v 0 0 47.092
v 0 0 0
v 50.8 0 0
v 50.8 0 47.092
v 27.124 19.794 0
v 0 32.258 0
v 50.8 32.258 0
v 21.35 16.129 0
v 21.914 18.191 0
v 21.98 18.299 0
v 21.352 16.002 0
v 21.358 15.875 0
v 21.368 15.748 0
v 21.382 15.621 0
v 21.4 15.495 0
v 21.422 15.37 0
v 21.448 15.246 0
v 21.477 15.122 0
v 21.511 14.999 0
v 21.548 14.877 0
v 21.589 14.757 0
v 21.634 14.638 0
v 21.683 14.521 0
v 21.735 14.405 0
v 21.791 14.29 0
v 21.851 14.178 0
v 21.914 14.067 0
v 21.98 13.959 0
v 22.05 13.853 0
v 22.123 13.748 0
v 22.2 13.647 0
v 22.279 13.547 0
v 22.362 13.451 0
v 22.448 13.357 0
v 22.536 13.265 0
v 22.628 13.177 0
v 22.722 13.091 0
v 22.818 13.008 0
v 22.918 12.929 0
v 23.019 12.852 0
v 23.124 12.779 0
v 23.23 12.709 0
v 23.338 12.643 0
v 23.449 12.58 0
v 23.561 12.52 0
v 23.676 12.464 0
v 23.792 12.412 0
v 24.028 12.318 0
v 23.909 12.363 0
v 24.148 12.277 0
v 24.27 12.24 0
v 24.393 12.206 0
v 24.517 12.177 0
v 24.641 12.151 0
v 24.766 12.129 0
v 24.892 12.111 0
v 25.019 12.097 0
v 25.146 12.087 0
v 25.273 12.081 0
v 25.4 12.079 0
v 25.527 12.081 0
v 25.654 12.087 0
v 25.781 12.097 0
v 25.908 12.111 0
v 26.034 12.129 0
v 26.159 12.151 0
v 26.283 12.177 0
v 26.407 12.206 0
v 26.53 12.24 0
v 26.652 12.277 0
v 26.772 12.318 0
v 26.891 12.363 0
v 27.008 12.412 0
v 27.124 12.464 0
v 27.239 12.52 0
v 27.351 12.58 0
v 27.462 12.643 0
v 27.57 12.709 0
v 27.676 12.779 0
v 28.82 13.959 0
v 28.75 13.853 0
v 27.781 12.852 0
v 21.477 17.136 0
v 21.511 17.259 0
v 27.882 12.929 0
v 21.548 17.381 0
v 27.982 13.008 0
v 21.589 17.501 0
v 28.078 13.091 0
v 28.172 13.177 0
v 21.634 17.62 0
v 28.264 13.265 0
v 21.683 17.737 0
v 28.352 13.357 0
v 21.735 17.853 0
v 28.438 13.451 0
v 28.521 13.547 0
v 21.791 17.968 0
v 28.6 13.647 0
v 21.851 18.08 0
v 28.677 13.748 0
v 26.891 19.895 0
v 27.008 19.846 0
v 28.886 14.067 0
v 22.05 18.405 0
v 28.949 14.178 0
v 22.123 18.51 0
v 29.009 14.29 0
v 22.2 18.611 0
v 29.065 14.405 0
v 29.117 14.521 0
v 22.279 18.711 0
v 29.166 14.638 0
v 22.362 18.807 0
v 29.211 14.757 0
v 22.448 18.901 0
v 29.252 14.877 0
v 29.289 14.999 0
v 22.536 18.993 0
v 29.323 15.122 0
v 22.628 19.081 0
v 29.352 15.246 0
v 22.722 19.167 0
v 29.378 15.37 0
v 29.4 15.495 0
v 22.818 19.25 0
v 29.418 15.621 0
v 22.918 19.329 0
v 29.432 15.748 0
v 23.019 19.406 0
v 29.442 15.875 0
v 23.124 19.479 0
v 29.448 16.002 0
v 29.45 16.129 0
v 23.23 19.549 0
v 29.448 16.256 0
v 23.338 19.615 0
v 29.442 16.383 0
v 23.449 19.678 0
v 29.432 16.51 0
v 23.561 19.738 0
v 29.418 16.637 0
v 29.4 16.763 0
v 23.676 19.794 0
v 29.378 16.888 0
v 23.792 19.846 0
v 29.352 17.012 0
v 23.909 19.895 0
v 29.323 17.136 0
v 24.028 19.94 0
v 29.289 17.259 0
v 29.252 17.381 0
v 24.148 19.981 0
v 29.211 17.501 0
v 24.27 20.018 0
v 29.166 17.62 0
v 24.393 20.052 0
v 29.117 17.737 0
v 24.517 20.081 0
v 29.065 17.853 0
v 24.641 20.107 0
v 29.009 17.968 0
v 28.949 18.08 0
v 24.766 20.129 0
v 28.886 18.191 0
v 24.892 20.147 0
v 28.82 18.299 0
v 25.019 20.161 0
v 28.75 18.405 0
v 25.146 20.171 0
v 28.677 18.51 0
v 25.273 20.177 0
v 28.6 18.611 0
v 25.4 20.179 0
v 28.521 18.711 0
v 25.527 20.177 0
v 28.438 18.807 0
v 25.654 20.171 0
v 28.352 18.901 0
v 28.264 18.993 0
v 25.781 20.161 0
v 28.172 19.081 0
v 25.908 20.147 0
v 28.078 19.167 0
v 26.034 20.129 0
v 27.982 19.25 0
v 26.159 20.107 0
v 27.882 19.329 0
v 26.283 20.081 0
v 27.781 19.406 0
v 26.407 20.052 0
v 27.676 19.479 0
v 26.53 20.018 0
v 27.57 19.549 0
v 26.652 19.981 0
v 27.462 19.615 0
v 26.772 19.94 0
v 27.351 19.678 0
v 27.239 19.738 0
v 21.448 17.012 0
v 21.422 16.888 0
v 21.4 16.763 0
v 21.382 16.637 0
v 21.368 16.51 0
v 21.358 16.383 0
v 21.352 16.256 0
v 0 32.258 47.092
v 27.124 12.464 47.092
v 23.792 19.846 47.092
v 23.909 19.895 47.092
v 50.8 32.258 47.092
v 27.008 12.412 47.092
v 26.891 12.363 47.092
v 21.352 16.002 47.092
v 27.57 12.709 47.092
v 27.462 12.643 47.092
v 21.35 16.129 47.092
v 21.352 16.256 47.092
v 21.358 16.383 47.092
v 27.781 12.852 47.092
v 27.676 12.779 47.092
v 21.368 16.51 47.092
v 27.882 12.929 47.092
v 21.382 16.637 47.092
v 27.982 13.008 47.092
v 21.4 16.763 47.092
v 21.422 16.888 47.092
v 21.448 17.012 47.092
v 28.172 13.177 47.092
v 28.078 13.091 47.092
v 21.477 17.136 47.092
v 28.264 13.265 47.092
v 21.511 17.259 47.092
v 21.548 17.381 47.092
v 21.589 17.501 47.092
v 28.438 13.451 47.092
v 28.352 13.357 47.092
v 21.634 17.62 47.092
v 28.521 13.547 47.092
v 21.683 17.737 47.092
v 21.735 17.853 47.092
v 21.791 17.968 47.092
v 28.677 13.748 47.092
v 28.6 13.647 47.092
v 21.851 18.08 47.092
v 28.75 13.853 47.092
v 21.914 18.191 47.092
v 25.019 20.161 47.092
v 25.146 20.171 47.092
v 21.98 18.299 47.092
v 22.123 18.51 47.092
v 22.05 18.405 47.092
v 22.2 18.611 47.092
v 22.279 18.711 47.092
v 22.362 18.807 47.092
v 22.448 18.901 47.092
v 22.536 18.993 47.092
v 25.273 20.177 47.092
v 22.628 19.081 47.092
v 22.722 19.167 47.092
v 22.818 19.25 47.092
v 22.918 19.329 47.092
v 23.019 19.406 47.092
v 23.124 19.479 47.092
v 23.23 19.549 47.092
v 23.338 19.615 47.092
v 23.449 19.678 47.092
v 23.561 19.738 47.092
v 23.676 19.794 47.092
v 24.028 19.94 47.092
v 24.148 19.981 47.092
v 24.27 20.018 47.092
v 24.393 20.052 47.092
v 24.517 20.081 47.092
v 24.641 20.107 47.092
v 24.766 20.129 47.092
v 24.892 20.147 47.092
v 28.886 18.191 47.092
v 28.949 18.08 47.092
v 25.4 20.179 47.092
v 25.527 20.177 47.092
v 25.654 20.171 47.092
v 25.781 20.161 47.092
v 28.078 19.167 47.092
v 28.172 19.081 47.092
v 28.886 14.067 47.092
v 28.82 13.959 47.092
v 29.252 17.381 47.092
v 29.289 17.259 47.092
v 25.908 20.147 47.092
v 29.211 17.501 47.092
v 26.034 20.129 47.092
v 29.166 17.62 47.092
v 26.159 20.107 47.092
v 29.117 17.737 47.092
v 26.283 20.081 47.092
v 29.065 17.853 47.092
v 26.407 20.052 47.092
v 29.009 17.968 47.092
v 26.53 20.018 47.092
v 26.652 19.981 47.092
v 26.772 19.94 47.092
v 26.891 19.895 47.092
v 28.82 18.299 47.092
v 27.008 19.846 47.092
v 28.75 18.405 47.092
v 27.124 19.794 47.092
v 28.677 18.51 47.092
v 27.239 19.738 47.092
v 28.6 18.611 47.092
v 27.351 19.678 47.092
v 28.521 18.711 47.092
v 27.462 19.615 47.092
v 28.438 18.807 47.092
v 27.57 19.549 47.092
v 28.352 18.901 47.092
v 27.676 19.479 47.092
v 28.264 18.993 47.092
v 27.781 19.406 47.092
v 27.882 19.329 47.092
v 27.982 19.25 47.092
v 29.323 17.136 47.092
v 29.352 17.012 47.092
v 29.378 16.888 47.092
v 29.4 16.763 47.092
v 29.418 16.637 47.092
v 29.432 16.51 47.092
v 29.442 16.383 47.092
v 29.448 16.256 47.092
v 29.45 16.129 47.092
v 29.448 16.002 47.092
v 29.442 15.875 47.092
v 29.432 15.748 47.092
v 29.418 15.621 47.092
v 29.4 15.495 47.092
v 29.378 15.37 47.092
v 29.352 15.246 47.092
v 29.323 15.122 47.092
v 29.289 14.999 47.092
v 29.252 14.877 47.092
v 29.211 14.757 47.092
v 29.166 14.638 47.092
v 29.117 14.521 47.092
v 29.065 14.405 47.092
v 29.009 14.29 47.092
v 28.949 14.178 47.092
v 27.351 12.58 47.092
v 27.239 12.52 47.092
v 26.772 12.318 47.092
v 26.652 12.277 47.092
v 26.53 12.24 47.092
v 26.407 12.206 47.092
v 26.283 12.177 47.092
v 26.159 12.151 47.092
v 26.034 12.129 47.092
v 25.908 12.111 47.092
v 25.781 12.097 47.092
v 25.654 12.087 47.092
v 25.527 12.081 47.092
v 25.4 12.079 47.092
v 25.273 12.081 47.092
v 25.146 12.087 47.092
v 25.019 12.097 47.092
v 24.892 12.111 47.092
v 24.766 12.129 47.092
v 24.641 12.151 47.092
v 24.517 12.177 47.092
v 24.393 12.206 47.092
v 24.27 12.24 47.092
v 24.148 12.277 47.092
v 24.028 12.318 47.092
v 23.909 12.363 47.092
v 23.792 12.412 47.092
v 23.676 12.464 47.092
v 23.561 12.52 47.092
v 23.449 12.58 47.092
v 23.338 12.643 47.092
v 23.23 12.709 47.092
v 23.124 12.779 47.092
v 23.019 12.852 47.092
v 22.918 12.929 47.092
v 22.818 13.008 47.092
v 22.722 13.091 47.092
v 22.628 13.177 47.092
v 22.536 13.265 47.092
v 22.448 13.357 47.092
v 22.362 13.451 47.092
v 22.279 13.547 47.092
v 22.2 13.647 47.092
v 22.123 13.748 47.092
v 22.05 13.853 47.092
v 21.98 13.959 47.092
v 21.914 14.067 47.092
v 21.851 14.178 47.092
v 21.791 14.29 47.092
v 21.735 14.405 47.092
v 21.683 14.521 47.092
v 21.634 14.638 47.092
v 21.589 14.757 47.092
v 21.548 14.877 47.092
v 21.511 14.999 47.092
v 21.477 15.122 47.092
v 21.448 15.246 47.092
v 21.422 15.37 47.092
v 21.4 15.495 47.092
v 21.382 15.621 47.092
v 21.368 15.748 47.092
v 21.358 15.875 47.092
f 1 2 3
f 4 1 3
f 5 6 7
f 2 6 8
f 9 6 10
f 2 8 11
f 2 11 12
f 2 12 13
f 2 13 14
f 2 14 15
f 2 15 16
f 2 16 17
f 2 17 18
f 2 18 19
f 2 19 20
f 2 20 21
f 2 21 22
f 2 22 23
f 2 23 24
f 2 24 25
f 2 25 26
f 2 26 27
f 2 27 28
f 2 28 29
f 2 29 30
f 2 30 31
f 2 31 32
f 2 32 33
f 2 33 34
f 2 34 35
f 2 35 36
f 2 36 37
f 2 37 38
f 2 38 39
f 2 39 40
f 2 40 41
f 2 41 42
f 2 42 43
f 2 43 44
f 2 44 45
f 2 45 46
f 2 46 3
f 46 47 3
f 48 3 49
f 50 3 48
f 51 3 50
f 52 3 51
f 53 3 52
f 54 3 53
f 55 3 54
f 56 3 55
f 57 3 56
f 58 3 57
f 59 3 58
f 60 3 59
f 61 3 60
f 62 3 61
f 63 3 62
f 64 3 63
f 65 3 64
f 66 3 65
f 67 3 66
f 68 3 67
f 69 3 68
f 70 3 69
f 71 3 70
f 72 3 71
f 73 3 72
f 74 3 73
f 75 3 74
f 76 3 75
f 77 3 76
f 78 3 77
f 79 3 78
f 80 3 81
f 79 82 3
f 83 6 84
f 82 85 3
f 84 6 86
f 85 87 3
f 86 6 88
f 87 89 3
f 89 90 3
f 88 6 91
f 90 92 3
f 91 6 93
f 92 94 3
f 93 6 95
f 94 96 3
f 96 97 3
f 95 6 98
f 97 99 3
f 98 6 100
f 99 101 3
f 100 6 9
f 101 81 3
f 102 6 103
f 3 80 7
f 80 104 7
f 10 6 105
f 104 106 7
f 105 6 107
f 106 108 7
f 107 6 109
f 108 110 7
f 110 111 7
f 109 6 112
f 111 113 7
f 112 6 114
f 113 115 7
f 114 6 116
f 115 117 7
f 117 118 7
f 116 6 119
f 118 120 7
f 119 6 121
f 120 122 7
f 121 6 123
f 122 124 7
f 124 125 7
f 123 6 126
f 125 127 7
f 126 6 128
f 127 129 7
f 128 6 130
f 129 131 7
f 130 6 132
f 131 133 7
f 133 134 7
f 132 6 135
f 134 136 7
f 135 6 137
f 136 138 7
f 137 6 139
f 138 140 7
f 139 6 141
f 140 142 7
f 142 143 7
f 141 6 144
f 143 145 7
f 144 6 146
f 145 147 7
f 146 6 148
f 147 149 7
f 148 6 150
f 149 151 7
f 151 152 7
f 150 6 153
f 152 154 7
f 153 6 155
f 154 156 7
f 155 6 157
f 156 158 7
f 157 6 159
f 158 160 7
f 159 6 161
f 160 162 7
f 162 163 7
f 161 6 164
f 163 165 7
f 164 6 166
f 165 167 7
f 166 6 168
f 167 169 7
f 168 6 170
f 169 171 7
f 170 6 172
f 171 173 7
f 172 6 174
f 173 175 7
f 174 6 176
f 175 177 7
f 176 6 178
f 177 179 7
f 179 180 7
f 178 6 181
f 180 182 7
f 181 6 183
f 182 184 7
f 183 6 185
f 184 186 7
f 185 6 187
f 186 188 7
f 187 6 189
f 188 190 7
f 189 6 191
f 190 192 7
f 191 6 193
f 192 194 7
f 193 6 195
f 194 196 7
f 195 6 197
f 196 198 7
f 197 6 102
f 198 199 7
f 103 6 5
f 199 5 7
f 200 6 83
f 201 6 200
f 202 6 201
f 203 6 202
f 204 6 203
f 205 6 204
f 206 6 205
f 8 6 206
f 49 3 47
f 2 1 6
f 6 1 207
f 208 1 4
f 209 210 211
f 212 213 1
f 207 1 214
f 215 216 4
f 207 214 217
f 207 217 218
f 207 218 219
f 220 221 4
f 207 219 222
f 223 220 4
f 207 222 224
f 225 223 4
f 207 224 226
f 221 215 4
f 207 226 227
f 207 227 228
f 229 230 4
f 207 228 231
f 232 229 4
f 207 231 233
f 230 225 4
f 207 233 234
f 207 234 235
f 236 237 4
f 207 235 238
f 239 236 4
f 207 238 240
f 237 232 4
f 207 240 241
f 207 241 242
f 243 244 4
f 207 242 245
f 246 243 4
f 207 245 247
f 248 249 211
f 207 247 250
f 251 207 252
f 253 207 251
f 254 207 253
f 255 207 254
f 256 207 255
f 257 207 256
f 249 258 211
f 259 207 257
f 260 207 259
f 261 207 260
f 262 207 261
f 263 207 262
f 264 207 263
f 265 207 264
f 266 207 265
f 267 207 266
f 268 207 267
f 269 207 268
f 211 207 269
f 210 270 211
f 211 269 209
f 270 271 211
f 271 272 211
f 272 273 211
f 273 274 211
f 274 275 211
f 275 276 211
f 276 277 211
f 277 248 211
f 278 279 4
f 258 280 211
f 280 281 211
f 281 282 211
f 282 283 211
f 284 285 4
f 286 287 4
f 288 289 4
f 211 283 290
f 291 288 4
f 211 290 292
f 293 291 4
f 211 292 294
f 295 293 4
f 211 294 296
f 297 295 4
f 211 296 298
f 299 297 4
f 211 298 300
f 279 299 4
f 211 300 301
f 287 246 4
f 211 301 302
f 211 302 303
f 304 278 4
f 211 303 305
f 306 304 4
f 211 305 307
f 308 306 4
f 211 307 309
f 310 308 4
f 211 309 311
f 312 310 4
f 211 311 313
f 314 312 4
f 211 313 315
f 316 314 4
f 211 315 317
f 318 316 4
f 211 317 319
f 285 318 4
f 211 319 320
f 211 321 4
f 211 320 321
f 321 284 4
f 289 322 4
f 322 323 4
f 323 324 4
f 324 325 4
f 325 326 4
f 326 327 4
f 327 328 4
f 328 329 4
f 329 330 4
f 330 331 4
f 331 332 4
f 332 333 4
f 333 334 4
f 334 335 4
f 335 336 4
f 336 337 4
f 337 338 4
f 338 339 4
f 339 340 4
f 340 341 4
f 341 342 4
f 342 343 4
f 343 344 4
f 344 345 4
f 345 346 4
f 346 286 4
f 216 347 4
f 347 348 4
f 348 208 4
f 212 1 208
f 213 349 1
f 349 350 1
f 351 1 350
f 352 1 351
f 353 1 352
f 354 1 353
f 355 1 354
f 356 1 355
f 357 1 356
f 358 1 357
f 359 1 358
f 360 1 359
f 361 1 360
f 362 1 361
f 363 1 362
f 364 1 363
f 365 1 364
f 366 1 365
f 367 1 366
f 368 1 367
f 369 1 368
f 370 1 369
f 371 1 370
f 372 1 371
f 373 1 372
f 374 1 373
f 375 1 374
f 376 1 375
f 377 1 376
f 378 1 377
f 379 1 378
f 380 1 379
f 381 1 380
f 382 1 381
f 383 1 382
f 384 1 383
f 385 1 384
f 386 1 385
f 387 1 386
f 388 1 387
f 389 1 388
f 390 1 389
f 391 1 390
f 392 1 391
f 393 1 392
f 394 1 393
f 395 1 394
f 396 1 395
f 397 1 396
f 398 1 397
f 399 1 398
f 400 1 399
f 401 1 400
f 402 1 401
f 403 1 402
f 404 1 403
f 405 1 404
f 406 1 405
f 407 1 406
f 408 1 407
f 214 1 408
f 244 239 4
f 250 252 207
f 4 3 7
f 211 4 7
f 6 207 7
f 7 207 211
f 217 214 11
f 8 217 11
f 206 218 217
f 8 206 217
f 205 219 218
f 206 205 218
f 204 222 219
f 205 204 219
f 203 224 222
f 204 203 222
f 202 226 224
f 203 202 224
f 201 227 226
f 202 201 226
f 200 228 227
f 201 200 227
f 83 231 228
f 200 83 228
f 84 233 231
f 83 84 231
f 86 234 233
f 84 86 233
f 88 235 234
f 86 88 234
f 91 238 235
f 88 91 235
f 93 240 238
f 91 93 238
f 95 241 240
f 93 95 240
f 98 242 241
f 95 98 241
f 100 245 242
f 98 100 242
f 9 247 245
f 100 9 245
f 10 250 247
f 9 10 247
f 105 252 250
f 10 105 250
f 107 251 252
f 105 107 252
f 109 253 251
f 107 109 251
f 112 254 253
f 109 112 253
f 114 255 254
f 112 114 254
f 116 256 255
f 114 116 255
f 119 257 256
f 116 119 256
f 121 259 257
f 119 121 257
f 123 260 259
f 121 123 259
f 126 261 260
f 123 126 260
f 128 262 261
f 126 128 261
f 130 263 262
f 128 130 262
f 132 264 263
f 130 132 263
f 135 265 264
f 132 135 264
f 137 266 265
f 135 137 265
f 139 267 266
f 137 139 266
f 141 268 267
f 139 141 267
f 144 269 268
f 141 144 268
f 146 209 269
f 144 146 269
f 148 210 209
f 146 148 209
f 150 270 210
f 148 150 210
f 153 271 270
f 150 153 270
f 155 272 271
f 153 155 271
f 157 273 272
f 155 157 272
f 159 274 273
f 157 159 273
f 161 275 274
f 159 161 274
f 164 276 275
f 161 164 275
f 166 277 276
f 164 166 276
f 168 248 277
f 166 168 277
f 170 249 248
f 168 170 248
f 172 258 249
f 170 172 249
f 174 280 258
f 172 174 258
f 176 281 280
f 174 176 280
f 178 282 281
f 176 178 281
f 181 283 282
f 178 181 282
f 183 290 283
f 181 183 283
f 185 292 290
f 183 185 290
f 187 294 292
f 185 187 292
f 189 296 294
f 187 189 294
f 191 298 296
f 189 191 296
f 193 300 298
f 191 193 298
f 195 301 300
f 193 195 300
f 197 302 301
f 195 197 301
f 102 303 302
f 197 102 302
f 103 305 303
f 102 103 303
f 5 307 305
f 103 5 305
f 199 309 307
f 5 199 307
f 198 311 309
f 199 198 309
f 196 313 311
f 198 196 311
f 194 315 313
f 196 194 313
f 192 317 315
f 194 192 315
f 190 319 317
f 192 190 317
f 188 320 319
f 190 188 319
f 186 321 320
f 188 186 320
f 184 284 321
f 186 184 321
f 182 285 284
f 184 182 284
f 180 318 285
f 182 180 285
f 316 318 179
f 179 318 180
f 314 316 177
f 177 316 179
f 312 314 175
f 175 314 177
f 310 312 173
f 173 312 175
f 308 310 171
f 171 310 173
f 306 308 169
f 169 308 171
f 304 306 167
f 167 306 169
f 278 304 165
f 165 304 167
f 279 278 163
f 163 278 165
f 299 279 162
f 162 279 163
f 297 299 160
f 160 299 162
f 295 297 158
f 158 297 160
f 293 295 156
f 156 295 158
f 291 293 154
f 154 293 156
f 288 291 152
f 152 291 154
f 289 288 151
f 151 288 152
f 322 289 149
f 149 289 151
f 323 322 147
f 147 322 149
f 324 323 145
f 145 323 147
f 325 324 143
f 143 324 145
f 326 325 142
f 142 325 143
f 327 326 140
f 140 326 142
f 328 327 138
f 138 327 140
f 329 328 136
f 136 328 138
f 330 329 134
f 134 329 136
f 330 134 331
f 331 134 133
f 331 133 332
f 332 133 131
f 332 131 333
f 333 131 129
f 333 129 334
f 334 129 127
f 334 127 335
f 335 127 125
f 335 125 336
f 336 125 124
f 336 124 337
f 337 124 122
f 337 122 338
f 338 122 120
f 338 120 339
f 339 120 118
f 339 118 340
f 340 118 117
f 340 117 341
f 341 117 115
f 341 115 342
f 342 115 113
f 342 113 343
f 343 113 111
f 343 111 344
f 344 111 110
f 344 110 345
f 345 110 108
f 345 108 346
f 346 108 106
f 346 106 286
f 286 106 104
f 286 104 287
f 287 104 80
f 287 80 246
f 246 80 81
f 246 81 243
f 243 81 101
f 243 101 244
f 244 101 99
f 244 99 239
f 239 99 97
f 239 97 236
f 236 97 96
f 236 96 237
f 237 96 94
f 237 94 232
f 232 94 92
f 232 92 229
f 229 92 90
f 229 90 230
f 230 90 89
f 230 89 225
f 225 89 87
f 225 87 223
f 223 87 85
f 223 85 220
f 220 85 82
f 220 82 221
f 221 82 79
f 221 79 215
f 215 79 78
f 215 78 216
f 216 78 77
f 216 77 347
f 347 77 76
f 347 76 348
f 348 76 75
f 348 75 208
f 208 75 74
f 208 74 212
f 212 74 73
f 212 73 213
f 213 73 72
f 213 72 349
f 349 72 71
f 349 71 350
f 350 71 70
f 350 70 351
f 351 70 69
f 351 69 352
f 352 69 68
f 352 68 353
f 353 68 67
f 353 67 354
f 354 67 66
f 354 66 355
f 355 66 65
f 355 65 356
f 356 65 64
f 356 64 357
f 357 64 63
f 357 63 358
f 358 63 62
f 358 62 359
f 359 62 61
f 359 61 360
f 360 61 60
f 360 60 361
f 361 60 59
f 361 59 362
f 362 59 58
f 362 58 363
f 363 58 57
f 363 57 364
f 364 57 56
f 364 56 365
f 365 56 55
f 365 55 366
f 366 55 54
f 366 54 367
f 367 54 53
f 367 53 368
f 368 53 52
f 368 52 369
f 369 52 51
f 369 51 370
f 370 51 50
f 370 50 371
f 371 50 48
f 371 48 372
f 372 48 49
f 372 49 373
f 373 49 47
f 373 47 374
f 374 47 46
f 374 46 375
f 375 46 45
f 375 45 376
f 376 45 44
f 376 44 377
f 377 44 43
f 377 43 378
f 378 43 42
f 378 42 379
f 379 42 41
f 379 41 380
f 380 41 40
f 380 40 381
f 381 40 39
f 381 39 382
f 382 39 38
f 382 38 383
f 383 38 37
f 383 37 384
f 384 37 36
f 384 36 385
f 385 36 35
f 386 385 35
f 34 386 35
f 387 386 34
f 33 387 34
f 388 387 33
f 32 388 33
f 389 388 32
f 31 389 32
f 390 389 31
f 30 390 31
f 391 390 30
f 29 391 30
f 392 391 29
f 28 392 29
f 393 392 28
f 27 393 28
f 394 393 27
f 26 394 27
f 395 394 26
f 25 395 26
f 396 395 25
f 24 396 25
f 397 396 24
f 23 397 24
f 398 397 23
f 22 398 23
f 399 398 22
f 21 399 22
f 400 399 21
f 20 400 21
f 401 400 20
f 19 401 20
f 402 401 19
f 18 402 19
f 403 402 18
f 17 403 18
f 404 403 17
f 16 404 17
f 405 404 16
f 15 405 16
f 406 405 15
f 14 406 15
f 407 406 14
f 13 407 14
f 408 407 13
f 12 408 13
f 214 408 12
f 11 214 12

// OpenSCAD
width = 25.4 * 2;
depth = 25.4 * 1.27;
height = 1.854 * 25.4;
bolt = 8.1;

#difference()
{
linear_extrude(height = height )
{
	polygon(points=[[0, 0],[width, 0],[width, depth], [0, depth]]);

}

linear_extrude(height = height)
{
	translate([width/2, depth/2,0])
	{
		circle($fn = 200, r = bolt/2);
	}
}
}
